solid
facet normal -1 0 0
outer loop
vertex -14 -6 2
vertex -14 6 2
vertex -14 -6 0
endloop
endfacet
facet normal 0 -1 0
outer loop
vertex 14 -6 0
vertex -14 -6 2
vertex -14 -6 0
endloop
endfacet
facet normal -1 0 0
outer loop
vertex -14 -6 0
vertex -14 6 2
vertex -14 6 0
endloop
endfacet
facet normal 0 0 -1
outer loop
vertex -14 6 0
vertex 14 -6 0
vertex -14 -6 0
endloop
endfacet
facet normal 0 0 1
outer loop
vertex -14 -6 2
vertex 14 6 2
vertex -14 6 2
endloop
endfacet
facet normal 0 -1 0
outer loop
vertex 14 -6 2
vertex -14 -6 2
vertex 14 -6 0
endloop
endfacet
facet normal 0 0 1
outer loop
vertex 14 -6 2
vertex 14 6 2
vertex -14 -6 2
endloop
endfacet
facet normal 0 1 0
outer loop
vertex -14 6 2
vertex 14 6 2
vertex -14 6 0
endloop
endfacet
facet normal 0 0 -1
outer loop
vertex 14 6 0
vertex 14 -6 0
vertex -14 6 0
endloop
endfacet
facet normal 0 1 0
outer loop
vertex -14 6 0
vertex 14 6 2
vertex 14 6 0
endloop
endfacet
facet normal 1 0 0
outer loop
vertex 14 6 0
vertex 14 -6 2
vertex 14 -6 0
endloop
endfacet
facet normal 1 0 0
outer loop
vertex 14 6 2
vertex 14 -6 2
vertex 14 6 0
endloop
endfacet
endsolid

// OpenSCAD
/*
Yamper V11 mesh source for yamper_v11_pisugar_slot_blank_cap_optional.stl
Units: millimeters

This source keeps the restored V11 STL geometry as a plain OpenSCAD polyhedron.
It is not a new redesign. It exists so the CAD source, STL, and STEP exports stay together.
*/

module yamper_v11_pisugar_slot_blank_cap_optional() {
    pts = [
        [-14, -6, 2],
        [-14, 6, 2],
        [-14, -6, 0],
        [14, -6, 0],
        [-14, 6, 0],
        [14, 6, 2],
        [14, -6, 2],
        [14, 6, 0],
    ];

    tris = [
        [0, 1, 2],
        [3, 0, 2],
        [2, 1, 4],
        [4, 3, 2],
        [0, 5, 1],
        [6, 0, 3],
        [6, 5, 0],
        [1, 5, 4],
        [7, 3, 4],
        [4, 5, 7],
        [7, 6, 3],
        [5, 6, 7],
    ];

    polyhedron(points = pts, faces = tris, convexity = 10);
}

yamper_v11_pisugar_slot_blank_cap_optional();
